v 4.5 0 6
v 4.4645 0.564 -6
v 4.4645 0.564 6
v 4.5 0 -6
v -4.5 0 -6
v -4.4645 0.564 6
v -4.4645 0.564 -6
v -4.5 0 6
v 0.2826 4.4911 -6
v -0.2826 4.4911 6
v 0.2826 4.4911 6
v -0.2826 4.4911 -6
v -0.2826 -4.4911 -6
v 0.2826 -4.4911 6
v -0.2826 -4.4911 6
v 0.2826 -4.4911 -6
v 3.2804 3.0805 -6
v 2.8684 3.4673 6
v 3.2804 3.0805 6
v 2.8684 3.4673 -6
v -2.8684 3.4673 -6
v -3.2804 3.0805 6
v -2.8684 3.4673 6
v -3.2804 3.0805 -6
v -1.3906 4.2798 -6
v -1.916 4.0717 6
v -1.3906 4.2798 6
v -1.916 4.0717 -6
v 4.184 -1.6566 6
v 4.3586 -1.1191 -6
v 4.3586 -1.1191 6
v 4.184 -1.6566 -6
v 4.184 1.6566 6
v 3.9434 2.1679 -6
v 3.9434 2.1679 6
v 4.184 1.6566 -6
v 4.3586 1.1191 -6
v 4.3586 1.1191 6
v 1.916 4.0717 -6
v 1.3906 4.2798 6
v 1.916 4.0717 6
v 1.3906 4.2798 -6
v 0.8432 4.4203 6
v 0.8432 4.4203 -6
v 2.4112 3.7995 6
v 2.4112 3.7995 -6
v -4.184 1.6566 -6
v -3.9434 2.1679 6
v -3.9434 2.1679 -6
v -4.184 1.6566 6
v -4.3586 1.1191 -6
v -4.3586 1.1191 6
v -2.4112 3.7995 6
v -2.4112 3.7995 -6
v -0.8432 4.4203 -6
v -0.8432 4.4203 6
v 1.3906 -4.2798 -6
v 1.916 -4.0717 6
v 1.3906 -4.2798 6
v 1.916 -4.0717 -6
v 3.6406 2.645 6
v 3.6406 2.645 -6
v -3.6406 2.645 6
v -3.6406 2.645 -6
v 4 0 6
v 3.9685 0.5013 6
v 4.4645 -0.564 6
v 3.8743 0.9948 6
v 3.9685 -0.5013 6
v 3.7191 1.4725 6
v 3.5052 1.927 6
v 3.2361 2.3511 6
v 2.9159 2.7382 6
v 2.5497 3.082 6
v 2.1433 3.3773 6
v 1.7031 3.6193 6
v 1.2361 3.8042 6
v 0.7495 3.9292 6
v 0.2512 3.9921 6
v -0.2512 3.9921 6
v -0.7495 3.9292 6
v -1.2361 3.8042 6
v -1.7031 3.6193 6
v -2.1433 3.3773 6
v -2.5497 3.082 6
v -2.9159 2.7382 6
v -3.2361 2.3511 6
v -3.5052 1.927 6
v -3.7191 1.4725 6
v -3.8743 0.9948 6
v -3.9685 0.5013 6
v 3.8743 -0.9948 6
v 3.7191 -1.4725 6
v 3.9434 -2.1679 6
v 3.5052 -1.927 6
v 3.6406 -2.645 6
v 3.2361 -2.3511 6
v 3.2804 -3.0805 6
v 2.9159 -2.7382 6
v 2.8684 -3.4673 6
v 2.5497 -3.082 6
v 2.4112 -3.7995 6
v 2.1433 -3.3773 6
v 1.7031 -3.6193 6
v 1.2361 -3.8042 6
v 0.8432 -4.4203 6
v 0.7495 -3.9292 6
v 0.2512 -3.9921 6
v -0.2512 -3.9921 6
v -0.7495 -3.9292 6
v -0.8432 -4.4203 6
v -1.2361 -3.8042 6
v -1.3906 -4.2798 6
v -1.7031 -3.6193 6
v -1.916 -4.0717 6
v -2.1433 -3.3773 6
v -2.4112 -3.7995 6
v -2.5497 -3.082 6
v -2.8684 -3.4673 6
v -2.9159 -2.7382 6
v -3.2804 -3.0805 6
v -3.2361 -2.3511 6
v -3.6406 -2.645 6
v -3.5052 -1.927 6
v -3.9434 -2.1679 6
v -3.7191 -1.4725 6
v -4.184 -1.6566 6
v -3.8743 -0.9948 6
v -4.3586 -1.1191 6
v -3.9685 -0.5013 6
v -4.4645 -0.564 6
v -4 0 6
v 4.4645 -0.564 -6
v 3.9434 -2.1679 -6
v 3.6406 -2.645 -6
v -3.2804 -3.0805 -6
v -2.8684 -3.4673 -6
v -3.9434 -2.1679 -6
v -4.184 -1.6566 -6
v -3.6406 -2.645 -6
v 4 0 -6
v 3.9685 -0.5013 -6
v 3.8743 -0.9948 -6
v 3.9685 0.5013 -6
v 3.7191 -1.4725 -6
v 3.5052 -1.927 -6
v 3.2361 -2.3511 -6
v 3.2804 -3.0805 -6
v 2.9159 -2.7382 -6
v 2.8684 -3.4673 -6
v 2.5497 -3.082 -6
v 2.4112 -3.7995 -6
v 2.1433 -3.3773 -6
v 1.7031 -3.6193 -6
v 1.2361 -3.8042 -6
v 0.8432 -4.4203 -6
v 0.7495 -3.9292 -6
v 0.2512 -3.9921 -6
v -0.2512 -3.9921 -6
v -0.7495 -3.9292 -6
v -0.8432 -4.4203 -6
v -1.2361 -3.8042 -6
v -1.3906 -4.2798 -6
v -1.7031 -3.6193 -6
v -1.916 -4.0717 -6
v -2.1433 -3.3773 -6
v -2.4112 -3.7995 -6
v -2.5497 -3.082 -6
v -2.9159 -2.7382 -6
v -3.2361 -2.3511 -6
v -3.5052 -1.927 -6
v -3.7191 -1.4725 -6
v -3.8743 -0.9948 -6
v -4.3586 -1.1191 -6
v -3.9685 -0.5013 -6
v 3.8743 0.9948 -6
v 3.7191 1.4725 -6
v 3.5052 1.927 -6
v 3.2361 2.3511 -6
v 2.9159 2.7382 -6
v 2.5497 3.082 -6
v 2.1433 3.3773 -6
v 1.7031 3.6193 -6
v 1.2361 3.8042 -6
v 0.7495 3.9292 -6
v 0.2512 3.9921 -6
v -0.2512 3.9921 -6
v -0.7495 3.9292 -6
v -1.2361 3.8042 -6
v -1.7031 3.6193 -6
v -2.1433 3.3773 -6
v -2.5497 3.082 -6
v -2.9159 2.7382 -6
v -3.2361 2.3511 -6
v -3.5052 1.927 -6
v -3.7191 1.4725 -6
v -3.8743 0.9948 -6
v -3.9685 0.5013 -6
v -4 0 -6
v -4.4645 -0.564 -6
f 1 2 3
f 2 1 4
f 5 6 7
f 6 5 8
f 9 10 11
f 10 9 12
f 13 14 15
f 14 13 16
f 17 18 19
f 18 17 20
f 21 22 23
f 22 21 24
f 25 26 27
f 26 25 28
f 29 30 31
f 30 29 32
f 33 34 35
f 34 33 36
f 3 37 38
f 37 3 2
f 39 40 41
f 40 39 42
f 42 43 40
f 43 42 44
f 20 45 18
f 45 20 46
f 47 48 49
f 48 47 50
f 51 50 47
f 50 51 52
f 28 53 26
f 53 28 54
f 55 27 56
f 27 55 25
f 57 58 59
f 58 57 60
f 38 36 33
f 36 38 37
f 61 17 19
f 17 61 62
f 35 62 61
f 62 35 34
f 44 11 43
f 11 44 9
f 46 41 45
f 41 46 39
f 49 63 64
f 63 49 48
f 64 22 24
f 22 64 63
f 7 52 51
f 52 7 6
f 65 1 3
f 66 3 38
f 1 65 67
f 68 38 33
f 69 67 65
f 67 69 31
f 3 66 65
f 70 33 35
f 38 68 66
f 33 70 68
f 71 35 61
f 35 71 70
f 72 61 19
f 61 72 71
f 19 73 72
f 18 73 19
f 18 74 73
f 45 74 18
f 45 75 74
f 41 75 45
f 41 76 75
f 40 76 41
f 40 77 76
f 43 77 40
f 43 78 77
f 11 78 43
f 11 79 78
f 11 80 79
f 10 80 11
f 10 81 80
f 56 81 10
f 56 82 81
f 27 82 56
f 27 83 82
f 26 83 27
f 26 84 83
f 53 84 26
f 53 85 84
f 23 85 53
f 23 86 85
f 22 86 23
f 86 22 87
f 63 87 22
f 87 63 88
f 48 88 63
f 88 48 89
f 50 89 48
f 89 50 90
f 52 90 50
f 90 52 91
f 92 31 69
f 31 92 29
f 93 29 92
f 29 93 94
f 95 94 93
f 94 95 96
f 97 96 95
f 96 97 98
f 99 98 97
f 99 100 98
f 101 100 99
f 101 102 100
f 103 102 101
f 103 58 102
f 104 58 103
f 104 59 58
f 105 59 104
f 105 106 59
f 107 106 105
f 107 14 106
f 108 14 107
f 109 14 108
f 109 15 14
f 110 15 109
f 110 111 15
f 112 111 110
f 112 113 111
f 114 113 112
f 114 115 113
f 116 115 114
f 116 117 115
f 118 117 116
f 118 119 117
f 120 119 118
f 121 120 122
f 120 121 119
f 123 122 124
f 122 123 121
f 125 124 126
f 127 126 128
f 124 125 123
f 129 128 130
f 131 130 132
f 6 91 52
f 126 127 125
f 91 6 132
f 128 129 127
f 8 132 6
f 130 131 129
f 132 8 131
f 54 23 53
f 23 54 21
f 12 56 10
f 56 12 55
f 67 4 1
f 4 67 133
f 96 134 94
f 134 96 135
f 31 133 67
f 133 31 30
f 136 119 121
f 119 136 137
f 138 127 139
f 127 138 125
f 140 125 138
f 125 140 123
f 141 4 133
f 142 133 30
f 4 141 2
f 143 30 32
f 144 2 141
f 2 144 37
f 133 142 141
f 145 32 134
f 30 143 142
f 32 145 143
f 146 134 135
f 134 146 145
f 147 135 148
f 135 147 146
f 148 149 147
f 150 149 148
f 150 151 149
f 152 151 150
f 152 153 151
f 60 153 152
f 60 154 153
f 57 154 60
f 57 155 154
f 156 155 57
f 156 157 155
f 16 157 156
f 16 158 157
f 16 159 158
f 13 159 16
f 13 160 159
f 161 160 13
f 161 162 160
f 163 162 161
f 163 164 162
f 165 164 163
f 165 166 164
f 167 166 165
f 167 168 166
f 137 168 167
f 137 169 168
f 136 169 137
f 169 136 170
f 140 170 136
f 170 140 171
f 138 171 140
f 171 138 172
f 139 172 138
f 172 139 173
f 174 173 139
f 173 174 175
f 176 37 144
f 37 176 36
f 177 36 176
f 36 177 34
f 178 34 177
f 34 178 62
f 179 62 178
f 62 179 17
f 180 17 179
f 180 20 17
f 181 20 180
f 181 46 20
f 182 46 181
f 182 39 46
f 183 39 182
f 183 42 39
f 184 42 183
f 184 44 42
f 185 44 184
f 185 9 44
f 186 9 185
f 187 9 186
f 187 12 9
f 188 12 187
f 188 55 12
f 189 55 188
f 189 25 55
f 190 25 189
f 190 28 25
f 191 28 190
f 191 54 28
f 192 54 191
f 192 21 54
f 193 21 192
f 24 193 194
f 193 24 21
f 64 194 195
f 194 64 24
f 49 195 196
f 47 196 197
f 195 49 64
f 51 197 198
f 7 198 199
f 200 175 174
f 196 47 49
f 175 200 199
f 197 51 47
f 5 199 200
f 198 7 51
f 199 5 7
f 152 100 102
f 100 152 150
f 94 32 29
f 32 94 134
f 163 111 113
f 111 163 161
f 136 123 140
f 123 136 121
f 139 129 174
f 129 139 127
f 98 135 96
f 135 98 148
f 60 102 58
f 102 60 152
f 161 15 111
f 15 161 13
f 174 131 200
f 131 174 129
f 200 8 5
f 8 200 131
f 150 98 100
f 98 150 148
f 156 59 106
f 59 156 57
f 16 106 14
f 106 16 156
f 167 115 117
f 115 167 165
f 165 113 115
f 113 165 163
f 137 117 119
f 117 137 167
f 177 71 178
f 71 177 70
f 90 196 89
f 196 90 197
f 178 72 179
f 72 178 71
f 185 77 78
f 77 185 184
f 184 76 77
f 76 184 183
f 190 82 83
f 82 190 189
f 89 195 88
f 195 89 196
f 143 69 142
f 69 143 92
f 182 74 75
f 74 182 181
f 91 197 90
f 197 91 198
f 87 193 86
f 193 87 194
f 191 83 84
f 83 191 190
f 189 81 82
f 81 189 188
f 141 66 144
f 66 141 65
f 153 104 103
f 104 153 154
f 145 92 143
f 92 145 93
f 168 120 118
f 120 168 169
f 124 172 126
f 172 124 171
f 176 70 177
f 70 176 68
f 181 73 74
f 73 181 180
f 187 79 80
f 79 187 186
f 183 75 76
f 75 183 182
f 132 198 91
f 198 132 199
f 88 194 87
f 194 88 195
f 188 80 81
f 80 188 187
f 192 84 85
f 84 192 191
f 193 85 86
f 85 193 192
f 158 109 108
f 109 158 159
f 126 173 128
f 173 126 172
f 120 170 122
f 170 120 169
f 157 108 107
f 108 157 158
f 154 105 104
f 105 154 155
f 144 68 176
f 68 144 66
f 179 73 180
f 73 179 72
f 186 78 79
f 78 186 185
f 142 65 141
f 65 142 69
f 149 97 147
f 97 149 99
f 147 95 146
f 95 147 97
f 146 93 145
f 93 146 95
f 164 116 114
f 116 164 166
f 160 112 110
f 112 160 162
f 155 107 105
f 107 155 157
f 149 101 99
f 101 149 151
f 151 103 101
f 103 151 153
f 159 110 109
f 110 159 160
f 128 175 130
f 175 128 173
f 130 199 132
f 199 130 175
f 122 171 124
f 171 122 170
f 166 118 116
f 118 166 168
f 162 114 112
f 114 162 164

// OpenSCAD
$fn = 50;


difference() {
	union() {
		translate(v = [0, 0, -6.0000000000]) {
			cylinder(h = 12, r = 4.5000000000);
		}
	}
	union() {
		translate(v = [0, 0, -100.0000000000]) {
			cylinder(h = 200, r = 4.0000000000);
		}
	}
}
